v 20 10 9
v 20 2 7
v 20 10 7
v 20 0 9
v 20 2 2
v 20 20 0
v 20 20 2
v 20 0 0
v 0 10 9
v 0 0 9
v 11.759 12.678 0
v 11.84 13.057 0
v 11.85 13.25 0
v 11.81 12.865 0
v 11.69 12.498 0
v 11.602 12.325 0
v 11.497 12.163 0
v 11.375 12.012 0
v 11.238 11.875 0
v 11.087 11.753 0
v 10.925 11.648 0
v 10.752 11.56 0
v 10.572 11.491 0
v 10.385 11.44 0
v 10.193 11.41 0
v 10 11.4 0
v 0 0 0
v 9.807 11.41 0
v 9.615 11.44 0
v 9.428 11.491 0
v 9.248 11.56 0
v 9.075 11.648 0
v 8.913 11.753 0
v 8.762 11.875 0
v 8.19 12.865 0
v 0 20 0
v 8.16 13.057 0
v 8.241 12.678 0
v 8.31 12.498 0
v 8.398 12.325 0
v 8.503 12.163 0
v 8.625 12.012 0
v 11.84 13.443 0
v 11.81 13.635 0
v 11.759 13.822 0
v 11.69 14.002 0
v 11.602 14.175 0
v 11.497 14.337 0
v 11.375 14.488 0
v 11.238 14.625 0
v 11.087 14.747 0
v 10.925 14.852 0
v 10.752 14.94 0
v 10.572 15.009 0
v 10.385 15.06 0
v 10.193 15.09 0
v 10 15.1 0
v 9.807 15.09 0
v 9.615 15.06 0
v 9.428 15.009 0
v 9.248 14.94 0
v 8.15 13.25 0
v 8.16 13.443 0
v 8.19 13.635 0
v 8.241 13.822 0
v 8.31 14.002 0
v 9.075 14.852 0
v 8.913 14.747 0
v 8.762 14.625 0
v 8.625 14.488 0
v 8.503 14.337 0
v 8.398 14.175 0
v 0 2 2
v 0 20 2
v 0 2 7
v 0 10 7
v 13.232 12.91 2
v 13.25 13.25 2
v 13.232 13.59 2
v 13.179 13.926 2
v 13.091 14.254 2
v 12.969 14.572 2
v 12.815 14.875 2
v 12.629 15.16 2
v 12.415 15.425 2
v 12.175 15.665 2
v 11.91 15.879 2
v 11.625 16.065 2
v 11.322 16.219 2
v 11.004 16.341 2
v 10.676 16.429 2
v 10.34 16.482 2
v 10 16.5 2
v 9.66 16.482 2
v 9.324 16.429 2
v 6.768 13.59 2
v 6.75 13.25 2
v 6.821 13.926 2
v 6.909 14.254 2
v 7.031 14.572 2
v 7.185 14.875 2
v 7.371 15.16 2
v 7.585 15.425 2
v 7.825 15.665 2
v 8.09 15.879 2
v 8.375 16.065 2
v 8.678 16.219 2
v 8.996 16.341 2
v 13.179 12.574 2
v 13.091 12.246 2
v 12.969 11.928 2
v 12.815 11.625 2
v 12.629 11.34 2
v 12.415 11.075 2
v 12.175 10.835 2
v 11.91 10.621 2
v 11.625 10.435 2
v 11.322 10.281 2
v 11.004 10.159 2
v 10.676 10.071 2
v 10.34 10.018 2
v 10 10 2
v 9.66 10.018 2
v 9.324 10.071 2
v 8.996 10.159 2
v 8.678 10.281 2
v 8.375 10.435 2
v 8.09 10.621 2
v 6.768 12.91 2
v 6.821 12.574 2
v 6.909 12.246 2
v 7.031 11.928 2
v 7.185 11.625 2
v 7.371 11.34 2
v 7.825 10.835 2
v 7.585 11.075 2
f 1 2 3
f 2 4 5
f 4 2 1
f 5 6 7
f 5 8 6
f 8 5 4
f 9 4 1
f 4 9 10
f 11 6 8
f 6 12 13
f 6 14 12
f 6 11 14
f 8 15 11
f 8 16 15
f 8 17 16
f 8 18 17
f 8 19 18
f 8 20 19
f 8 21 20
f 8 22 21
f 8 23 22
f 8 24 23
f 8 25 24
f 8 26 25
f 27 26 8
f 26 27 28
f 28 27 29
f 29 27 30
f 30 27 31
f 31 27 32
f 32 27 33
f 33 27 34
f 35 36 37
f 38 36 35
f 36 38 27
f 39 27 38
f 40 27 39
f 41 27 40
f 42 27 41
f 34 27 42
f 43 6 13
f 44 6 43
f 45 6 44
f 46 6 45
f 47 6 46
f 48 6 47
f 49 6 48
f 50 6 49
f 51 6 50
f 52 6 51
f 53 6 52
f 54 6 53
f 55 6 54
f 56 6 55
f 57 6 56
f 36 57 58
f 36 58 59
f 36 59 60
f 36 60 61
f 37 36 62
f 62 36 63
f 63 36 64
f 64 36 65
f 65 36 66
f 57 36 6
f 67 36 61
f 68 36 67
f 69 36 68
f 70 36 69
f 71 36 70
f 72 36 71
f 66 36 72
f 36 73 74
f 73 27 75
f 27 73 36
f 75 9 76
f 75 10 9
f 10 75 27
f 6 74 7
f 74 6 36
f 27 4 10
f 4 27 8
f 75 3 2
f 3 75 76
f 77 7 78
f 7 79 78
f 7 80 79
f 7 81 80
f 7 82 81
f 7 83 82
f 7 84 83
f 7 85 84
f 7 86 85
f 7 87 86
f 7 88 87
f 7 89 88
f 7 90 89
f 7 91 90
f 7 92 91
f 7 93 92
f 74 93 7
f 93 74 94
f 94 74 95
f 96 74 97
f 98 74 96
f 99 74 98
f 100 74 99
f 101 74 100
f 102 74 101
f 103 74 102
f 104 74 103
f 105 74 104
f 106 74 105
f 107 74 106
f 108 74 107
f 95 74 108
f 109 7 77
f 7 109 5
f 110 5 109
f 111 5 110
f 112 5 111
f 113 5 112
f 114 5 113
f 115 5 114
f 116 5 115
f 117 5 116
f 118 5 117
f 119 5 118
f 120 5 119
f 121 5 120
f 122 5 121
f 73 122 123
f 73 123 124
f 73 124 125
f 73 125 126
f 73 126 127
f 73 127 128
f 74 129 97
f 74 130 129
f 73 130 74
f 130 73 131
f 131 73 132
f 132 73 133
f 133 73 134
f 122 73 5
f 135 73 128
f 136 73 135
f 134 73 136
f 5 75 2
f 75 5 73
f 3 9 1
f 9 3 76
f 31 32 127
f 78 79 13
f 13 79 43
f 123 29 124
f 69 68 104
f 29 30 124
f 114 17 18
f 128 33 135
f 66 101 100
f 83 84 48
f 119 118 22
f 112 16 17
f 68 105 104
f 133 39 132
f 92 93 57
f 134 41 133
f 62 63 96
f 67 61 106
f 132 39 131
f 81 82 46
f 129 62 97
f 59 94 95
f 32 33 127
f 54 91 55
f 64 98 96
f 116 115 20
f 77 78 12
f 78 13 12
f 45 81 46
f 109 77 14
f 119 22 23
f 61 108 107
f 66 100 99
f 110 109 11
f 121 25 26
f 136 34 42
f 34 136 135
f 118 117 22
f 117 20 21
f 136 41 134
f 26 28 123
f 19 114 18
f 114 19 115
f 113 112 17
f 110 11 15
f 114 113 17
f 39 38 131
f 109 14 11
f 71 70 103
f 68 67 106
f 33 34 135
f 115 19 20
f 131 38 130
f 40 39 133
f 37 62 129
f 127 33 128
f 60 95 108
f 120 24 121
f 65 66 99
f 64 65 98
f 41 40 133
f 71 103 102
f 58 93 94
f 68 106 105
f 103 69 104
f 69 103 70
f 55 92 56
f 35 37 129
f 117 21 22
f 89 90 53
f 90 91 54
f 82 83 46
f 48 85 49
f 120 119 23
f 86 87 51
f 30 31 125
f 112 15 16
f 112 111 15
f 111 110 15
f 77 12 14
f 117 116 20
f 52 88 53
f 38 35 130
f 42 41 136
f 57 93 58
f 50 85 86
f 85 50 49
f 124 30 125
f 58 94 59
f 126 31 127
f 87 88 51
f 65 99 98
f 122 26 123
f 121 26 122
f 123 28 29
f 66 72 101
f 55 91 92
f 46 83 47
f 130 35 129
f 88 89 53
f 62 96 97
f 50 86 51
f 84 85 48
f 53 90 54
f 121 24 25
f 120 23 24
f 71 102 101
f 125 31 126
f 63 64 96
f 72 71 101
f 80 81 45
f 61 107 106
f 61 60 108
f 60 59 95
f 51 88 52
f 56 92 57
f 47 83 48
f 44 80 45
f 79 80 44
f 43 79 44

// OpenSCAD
$fn=60;
thickness=2;
width=20;
overlap=8;
panelThickness=5;
holeDiameterMax=6.5;
holeDiameterMin=3.7;

difference() {
  cube([20,20,thickness*2+panelThickness]);
  translate([0,thickness,thickness]) cube([20,20,panelThickness]);
  translate([0,thickness+overlap,thickness]) cube([20,20,20]);
  translate([width/2,thickness+overlap+holeDiameterMax/2,0]) cylinder(h=thickness, d1=holeDiameterMin, d2=holeDiameterMax, center=false);

}
